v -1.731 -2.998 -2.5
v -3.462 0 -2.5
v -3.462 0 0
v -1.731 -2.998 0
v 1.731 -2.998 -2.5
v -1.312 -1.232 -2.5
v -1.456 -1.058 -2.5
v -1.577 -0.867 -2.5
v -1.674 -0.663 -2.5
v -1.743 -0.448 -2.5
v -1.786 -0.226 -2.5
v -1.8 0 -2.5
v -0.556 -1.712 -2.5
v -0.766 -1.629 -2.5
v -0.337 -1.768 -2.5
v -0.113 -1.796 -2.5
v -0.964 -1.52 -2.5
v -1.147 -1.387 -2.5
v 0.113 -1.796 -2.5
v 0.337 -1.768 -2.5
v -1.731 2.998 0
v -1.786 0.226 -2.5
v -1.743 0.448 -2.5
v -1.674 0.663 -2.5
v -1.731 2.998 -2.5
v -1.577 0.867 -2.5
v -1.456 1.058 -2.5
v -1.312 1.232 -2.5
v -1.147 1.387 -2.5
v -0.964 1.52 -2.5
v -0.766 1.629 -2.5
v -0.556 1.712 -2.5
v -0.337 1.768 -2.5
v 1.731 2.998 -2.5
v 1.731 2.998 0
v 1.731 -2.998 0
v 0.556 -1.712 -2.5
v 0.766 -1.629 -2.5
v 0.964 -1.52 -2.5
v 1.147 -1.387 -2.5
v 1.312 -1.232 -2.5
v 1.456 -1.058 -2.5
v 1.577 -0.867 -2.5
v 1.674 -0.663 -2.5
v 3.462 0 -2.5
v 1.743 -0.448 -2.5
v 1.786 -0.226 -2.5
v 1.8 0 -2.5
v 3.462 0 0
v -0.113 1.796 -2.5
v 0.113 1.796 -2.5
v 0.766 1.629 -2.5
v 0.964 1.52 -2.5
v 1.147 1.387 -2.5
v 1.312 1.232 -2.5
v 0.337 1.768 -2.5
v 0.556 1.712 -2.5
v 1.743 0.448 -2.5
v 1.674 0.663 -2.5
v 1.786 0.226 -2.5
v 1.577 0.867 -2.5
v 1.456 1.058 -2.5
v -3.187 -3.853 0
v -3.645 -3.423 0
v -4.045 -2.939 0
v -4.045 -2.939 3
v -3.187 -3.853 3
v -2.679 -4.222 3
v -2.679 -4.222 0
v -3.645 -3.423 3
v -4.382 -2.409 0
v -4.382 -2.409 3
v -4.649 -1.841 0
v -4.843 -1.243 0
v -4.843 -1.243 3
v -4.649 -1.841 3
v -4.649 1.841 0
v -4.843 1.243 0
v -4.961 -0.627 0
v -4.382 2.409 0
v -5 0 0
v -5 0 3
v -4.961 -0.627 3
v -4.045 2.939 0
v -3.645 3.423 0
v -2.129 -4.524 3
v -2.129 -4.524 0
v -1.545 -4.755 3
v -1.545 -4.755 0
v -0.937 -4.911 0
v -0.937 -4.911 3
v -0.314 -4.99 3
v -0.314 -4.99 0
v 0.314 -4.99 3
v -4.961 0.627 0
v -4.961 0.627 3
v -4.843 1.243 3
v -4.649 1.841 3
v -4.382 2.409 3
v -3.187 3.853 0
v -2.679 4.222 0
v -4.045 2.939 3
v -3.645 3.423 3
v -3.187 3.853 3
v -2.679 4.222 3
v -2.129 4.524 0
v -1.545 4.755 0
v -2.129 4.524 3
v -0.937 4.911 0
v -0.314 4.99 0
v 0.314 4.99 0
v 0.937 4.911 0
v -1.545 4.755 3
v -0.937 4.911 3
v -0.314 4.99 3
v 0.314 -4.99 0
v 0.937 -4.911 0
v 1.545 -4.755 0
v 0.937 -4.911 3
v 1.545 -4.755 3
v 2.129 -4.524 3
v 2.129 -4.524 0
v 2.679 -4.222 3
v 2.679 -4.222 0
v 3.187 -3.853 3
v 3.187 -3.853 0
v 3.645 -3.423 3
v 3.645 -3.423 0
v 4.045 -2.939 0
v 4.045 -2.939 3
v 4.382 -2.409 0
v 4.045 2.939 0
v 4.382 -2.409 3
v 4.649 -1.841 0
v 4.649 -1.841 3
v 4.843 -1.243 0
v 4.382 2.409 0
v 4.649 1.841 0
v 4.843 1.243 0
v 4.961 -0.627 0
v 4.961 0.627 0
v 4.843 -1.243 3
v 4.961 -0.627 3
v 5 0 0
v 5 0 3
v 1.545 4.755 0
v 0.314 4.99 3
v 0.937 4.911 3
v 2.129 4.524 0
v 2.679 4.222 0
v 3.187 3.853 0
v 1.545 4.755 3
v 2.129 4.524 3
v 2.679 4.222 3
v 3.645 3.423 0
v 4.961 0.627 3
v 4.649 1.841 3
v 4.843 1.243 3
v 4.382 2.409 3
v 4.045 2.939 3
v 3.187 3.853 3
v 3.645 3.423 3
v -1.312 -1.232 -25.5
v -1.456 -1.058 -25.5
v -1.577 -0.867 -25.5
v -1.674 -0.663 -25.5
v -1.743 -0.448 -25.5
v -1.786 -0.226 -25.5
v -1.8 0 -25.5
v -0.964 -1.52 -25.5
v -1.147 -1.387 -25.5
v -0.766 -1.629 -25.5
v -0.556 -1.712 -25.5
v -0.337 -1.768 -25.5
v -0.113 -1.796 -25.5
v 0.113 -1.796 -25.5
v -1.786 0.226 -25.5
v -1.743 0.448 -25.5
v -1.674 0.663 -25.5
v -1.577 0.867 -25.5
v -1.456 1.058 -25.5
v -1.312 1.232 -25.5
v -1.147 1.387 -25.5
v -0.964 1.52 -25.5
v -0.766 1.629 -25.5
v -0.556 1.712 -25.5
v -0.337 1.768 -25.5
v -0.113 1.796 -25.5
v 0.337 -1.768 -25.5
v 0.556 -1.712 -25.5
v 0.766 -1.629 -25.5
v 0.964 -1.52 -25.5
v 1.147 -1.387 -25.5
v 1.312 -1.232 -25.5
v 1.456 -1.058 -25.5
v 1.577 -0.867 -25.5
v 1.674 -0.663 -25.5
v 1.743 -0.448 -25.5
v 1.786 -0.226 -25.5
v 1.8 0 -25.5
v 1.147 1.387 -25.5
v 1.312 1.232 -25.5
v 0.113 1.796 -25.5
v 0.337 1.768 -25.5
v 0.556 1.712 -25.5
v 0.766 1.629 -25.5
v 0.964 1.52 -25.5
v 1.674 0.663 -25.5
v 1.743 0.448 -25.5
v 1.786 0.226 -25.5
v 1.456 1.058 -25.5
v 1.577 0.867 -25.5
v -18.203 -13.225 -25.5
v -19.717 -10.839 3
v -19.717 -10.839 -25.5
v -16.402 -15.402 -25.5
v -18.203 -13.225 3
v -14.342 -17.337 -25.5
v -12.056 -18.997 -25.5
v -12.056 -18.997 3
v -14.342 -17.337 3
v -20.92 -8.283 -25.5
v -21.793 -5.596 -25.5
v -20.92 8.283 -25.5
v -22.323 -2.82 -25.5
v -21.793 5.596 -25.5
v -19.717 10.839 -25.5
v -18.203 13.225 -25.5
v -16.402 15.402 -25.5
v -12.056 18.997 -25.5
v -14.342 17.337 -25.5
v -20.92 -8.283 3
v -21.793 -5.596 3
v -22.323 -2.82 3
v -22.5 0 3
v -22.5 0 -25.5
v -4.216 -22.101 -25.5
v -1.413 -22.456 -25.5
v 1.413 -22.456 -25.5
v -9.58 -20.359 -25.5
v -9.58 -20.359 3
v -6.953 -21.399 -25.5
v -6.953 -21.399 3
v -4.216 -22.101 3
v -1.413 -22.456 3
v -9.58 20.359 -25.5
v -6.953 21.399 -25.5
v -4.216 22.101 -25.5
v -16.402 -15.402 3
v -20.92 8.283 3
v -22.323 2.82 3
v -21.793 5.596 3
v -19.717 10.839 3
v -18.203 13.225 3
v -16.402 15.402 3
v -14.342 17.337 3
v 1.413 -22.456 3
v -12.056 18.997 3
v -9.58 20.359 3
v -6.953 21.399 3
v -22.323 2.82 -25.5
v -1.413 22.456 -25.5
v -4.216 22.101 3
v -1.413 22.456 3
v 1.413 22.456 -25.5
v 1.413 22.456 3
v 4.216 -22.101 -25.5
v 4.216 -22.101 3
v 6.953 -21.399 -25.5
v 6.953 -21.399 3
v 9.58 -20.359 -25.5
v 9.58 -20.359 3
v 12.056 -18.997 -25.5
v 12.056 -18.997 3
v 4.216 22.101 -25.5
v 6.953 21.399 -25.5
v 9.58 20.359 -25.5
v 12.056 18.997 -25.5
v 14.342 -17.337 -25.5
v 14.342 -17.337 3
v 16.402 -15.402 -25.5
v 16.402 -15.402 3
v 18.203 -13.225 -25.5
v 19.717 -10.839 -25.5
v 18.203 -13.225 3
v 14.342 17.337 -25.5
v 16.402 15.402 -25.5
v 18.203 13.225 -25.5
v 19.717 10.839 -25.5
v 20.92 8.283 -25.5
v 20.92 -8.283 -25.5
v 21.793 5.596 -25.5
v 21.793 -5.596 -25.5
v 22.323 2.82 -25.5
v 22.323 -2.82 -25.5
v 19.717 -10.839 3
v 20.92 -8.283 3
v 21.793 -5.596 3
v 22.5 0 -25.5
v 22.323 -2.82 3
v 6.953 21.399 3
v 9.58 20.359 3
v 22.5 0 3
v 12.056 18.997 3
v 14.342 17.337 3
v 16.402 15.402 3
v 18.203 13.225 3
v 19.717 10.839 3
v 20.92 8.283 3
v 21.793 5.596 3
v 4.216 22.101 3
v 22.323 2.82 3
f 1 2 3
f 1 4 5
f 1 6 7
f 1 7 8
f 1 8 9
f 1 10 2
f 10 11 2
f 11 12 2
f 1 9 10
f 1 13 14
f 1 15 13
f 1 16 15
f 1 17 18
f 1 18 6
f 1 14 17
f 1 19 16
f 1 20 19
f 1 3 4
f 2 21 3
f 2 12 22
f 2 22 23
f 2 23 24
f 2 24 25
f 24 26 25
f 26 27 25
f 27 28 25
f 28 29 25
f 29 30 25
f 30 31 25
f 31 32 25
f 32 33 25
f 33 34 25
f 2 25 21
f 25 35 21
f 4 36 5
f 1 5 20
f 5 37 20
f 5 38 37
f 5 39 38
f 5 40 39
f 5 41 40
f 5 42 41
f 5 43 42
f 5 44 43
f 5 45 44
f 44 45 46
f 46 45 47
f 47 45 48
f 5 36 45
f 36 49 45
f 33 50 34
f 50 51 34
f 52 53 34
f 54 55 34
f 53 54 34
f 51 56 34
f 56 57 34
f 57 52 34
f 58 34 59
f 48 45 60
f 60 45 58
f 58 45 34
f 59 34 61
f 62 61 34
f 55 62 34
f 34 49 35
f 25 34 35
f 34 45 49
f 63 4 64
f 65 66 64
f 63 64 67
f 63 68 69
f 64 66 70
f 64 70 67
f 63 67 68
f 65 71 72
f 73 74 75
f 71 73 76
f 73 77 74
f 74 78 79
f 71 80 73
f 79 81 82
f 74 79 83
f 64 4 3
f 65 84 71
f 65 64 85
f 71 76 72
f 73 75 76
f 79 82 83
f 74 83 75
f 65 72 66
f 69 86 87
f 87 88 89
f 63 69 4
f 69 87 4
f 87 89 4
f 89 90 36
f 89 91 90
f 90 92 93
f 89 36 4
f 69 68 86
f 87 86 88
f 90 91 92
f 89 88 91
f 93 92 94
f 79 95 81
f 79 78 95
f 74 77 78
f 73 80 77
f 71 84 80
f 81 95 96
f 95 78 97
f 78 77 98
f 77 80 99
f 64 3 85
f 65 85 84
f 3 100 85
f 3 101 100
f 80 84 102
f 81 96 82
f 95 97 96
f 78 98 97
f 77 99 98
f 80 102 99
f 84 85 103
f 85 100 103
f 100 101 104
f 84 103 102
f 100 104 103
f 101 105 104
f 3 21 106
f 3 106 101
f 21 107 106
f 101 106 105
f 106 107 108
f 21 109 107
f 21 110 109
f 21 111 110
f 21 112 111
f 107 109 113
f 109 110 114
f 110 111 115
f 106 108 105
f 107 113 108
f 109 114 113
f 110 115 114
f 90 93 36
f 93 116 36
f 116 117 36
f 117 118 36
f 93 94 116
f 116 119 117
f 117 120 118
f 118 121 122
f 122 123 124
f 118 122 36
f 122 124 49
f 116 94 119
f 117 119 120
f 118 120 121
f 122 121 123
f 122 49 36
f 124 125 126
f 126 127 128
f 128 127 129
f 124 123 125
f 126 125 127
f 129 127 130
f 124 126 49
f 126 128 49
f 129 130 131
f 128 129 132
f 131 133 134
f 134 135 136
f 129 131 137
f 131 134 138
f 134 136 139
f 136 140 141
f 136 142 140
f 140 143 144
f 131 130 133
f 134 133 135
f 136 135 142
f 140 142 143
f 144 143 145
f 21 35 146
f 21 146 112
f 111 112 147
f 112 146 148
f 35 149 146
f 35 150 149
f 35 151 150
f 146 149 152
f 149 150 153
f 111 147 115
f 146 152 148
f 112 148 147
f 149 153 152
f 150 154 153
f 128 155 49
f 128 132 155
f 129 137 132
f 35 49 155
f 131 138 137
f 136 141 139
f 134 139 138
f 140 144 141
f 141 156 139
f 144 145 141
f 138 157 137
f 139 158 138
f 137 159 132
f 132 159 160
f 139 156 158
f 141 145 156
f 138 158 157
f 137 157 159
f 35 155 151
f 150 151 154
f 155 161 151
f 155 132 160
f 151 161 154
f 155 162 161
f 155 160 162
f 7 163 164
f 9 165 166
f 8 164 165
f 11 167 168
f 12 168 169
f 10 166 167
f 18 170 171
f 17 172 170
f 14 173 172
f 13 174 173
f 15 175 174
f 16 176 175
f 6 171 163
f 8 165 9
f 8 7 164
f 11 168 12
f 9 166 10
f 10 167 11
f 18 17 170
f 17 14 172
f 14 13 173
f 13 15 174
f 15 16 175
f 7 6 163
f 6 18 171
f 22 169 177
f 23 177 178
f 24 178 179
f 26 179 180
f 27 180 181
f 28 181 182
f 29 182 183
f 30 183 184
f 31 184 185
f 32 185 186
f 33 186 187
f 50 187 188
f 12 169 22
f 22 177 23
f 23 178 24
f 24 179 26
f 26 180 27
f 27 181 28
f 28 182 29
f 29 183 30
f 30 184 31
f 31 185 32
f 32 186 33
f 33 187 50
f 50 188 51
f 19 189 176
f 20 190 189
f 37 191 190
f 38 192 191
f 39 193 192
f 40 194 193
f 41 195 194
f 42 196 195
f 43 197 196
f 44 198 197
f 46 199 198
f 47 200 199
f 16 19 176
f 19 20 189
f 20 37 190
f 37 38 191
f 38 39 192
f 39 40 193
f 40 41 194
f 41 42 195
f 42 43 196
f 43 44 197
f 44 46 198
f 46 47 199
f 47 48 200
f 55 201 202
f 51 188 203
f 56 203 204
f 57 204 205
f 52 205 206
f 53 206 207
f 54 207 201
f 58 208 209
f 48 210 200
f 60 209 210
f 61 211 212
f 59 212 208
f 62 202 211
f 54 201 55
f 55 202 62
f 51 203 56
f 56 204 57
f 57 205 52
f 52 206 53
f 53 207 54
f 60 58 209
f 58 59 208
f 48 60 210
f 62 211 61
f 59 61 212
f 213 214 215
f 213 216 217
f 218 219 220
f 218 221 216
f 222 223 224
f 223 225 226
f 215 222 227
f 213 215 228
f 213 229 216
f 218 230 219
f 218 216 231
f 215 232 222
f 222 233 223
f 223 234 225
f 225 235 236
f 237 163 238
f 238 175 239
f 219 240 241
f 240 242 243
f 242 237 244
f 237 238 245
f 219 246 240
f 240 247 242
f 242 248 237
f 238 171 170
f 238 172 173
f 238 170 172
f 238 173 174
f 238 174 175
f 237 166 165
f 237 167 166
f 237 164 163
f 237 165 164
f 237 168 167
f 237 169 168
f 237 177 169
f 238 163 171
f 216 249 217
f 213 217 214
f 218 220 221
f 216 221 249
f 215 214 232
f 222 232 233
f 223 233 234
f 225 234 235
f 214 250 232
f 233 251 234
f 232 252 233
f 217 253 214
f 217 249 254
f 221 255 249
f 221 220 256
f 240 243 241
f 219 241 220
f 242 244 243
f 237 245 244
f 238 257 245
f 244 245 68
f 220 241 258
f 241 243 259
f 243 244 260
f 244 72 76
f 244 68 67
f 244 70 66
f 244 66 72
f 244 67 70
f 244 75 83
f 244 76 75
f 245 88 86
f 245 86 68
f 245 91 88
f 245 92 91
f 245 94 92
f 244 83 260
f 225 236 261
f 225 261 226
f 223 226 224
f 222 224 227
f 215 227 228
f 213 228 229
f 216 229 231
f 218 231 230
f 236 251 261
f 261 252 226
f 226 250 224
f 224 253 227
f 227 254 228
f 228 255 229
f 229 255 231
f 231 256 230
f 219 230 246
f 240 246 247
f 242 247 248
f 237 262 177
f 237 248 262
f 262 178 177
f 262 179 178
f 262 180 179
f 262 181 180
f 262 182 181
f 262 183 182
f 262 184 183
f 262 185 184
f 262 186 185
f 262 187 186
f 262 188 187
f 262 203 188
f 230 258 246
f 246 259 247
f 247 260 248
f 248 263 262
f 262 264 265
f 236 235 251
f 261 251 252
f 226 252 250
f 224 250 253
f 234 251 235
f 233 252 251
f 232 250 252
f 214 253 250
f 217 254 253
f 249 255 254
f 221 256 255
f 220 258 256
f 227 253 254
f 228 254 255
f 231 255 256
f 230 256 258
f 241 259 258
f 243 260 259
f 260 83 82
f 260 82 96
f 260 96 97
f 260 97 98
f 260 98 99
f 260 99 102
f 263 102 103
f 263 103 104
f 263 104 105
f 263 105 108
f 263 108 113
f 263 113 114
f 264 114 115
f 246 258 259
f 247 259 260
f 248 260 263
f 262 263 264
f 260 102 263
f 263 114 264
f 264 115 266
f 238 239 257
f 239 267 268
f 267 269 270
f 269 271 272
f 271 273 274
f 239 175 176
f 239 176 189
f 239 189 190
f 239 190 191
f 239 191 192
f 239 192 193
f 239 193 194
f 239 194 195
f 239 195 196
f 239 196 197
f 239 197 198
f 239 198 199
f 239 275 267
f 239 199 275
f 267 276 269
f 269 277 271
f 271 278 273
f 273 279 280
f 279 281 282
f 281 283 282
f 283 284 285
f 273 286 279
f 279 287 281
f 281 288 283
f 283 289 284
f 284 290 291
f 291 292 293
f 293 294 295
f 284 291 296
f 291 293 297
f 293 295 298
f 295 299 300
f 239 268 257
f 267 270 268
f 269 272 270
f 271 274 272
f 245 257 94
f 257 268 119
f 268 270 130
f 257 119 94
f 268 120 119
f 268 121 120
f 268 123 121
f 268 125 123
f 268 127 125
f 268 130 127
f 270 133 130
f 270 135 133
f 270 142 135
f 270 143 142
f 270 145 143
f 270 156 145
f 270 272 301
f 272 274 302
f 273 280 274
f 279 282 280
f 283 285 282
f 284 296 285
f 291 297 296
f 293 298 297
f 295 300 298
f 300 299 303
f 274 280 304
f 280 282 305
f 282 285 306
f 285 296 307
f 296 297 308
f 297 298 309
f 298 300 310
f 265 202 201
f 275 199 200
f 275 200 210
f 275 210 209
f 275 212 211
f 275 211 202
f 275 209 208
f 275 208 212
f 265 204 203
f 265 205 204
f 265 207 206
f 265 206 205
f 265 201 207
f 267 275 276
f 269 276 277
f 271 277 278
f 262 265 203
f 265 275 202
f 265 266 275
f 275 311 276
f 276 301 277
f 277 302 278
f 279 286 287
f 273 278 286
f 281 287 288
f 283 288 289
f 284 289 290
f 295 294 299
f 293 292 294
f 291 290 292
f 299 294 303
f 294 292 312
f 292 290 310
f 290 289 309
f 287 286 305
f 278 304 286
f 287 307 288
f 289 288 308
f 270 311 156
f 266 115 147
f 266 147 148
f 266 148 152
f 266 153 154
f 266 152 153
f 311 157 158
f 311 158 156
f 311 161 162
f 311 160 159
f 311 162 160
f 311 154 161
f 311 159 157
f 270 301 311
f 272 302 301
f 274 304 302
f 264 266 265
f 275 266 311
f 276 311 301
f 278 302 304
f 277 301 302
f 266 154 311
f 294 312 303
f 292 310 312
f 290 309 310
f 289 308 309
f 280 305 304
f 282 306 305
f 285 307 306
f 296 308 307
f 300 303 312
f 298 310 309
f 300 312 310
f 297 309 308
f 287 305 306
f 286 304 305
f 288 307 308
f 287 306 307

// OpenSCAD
$fn = 50;

difference() {
	union() {
		translate(v = [0, 0, -25.5]) {
			cylinder(h = 28.5, r = 22.5);
		}
	}
	union() {
		translate(v = [0, 0, 0]) {
			rotate(a = [0, 0, 0]) {
				difference() {
					union() {
						translate(v = [0, 0, -2.5]) {
							linear_extrude(height = 2.5) {
								polygon(points = [[3.4619999999999997, 0.0], [1.7310000000000003, 2.9981799479017264], [-1.7309999999999992, 2.9981799479017264], [-3.4619999999999997, 4.2397272186481365e-16], [-1.7310000000000014, -2.998179947901726], [1.7309999999999977, -2.9981799479017277]]);
							}
						}
					}
					union();
				}
			}
		}
		#cylinder(h = 3, r = 5.0);
		#translate(v = [0, 0, -100.0]) {
			cylinder(h = 200, r = 1.8);
		}
	}
}
